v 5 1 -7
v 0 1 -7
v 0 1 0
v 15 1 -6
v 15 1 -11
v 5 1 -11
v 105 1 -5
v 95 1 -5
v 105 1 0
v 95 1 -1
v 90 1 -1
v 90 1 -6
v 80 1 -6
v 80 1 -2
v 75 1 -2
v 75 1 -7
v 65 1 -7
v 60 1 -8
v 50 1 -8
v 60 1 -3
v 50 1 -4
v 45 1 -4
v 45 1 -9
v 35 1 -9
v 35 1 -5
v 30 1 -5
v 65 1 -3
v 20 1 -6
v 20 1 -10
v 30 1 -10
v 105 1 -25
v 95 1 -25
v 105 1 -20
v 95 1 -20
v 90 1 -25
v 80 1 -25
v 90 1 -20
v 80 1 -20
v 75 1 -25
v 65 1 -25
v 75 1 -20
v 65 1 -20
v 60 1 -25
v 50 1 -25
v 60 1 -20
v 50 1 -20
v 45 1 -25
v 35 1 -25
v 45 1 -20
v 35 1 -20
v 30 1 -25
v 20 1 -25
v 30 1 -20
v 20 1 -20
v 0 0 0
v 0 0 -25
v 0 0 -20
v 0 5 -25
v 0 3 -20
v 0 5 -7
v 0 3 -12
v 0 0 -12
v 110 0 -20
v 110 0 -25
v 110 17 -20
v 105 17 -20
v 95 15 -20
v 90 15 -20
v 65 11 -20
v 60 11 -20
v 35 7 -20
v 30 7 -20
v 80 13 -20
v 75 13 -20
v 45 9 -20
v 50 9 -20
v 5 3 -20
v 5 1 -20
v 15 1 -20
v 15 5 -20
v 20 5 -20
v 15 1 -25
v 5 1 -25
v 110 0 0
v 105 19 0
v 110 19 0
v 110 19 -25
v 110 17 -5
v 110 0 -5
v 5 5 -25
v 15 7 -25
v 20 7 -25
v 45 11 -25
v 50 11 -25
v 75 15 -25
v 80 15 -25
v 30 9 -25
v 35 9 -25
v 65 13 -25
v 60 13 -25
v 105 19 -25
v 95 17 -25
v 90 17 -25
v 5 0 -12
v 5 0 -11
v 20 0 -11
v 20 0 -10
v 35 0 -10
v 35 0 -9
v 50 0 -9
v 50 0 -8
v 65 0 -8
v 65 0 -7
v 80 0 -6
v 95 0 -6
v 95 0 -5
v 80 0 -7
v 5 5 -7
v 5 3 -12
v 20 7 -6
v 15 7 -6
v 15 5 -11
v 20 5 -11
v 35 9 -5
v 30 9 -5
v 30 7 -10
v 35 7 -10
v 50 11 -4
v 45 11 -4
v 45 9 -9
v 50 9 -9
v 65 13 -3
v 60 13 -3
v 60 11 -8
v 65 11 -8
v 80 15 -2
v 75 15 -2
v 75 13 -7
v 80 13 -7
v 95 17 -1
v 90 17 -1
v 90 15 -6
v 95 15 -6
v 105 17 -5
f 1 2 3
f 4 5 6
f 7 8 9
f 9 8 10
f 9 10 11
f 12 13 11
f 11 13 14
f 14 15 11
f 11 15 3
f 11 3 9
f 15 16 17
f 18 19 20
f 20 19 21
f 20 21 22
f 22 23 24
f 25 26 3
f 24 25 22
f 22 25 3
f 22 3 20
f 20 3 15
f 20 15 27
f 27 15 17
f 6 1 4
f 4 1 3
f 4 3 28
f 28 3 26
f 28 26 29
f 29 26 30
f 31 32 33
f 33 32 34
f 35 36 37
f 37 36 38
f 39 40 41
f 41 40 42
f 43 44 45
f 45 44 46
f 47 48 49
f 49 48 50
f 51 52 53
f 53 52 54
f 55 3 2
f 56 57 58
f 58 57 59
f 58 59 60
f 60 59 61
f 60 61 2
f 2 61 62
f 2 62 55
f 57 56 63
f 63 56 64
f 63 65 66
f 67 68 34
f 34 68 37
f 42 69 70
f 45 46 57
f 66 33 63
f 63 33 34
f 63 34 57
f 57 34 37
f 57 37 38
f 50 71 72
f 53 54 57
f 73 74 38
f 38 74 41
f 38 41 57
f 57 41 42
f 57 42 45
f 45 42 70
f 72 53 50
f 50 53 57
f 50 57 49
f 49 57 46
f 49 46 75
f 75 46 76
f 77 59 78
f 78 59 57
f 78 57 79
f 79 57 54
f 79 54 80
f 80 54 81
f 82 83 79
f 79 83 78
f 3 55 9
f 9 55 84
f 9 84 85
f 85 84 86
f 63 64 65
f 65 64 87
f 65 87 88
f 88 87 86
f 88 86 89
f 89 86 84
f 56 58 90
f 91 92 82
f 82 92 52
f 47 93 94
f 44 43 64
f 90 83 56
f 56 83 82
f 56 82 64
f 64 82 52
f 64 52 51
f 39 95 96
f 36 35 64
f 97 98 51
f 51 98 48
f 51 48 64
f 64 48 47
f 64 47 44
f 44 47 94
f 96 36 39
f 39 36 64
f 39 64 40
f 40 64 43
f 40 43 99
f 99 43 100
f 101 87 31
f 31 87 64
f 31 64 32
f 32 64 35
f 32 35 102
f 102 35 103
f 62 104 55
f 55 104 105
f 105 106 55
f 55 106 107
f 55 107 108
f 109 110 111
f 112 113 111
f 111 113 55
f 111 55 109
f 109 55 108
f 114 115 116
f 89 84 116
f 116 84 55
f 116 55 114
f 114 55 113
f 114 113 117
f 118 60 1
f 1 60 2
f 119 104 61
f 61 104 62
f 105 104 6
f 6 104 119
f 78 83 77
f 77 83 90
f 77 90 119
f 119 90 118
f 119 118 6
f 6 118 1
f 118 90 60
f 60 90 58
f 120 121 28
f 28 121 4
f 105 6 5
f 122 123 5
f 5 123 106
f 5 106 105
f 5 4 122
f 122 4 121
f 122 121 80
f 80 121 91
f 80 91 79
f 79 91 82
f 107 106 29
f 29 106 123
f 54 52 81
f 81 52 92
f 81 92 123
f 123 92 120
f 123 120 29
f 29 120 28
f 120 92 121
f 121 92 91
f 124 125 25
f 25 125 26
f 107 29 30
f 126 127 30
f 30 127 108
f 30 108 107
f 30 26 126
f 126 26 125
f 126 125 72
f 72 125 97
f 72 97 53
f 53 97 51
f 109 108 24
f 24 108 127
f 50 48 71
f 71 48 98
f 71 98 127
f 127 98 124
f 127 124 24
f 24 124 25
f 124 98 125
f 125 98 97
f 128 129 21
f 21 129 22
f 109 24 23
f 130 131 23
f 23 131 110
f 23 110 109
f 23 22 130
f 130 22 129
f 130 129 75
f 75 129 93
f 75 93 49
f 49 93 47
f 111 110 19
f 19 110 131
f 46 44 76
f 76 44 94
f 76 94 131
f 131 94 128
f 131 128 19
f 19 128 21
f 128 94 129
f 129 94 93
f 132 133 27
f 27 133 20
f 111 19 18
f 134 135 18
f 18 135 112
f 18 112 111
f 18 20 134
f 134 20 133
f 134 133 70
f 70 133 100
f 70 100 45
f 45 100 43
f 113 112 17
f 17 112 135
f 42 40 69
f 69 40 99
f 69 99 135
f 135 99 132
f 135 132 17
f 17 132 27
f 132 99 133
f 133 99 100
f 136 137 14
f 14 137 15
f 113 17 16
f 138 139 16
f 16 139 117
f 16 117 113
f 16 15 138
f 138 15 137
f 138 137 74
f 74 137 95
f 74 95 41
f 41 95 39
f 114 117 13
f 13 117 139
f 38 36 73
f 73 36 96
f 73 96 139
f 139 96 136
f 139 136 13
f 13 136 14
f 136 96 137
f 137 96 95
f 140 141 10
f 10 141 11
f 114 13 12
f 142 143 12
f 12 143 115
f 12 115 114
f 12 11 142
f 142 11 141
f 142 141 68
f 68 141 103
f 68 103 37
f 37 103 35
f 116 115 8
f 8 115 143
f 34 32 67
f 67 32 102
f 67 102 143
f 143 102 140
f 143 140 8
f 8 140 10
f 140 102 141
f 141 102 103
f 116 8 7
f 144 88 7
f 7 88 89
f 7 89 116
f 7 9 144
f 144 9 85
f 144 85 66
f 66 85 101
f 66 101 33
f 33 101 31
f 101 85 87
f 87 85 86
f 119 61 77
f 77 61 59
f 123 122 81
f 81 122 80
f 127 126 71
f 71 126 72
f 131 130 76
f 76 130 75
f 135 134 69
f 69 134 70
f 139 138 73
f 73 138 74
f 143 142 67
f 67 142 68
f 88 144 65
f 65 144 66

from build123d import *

# Parameters (mm, degrees)
SKETCH1_W          = 110
SKETCH1_H          = 25
BASE_DEPTH         = 1
SKETCH10_W         = 5
SKETCH10_H         = 5
LEG1_DEPTH         = 4
LEG2_W             = 5
LEG2_H             = 5
LEG2E_DEPTH        = 6
LEG3_W             = 5
LEG3_H             = 5
LEG3E_DEPTH        = 8
LEG4_W             = 5
LEG4_H             = 5
LEG4E_DEPTH        = 10
LEG5_W             = 5
LEG5_H             = 5
LEG5E_DEPTH        = 12
LEG6_W             = 5
LEG6_H             = 5
LEG6E_DEPTH        = 14
LEG7_W             = 5
LEG7_H             = 5
LEG7E_DEPTH        = 16
LEG8_W             = 5
LEG8_H             = 5
LEG8E_DEPTH        = 18
SKETCH29_W         = 5
SKETCH29_H         = 2
BRIDGE1_DEPTH      = 8
SKETCH30_W         = 5
SKETCH30_H         = 2
BRIDGE2_DEPTH      = 9
SKETCH31_W         = 5
SKETCH31_H         = 2
BRIDGE3_DEPTH      = 10
SKETCH32_W         = 5
SKETCH32_H         = 2
BRIDGE4_DEPTH      = 11
SKETCH33_W         = 5
SKETCH33_H         = 2
BRIDGE5_DEPTH      = 12
SKETCH34_W         = 5
SKETCH34_H         = 2
BRIDGE6_DEPTH      = 13
SKETCH35_W         = 5
SKETCH35_H         = 2
BRIDGE7_DEPTH      = 14
SKETCH36_W         = 5
SKETCH36_H         = 2
BRIDGE8_DEPTH      = 15
CUT_EXTRUDE4_DEPTH = 115.232219623


with BuildPart() as part:
    # Sketch1 → Base (new body)
    with BuildSketch(Plane(origin=(0, 0, 0), x_dir=(1, 0, 0), z_dir=(0, 1, 0))):
        with Locations((55, 12.5)):
            Rectangle(SKETCH1_W, SKETCH1_H)
    extrude(amount=BASE_DEPTH)

    # Sketch10 → leg1 (add)
    with BuildSketch(Plane(origin=(0, 1, 0), x_dir=(1, 0, 0), z_dir=(0, 1, 0))):
        with Locations((2.5, 22.5)):
            Rectangle(SKETCH10_W, SKETCH10_H)
        with Locations((2.5, 9.5)):
            Rectangle(SKETCH10_W, SKETCH10_H)
    extrude(amount=LEG1_DEPTH)

    # leg2 → leg2e (add)
    with BuildSketch(Plane(origin=(0, 1, 0), x_dir=(1, 0, 0), z_dir=(0, 1, 0))):
        with Locations((17.5, 22.5)):
            Rectangle(LEG2_W, LEG2_H)
        with Locations((17.5, 8.5)):
            Rectangle(LEG2_W, LEG2_H)
    extrude(amount=LEG2E_DEPTH)

    # leg3 → leg3e (add)
    with BuildSketch(Plane(origin=(0, 1, 0), x_dir=(1, 0, 0), z_dir=(0, 1, 0))):
        with Locations((32.5, 22.5)):
            Rectangle(LEG3_W, LEG3_H)
        with Locations((32.5, 7.5)):
            Rectangle(LEG3_W, LEG3_H)
    extrude(amount=LEG3E_DEPTH)

    # leg4 → leg4e (add)
    with BuildSketch(Plane(origin=(0, 1, 0), x_dir=(1, 0, 0), z_dir=(0, 1, 0))):
        with Locations((47.5, 22.5)):
            Rectangle(LEG4_W, LEG4_H)
        with Locations((47.5, 6.5)):
            Rectangle(LEG4_W, LEG4_H)
    extrude(amount=LEG4E_DEPTH)

    # leg5 → leg5e (add)
    with BuildSketch(Plane(origin=(0, 1, 0), x_dir=(1, 0, 0), z_dir=(0, 1, 0))):
        with Locations((62.5, 22.5)):
            Rectangle(LEG5_W, LEG5_H)
        with Locations((62.5, 5.5)):
            Rectangle(LEG5_W, LEG5_H)
    extrude(amount=LEG5E_DEPTH)

    # leg6 → leg6e (add)
    with BuildSketch(Plane(origin=(0, 1, 0), x_dir=(1, 0, 0), z_dir=(0, 1, 0))):
        with Locations((77.5, 22.5)):
            Rectangle(LEG6_W, LEG6_H)
        with Locations((77.5, 4.5)):
            Rectangle(LEG6_W, LEG6_H)
    extrude(amount=LEG6E_DEPTH)

    # leg7 → leg7e (add)
    with BuildSketch(Plane(origin=(0, 1, 0), x_dir=(1, 0, 0), z_dir=(0, 1, 0))):
        with Locations((92.5, 22.5)):
            Rectangle(LEG7_W, LEG7_H)
        with Locations((92.5, 3.5)):
            Rectangle(LEG7_W, LEG7_H)
    extrude(amount=LEG7E_DEPTH)

    # leg8 → leg8e (add)
    with BuildSketch(Plane(origin=(0, 1, 0), x_dir=(1, 0, 0), z_dir=(0, 1, 0))):
        with Locations((107.5, 22.5)):
            Rectangle(LEG8_W, LEG8_H)
        with Locations((107.5, 2.5)):
            Rectangle(LEG8_W, LEG8_H)
    extrude(amount=LEG8E_DEPTH)

    # Sketch29 → bridge1 (add)
    with BuildSketch(Plane.XY.offset(-20)):
        with Locations((2.5, 4)):
            Rectangle(SKETCH29_W, SKETCH29_H)
    extrude(amount=BRIDGE1_DEPTH)

    # Sketch30 → bridge2 (add)
    with BuildSketch(Plane.XY.offset(-20)):
        with Locations((17.5, 6)):
            Rectangle(SKETCH30_W, SKETCH30_H)
    extrude(amount=BRIDGE2_DEPTH)

    # Sketch31 → bridge3 (add)
    with BuildSketch(Plane.XY.offset(-20)):
        with Locations((32.5, 8)):
            Rectangle(SKETCH31_W, SKETCH31_H)
    extrude(amount=BRIDGE3_DEPTH)

    # Sketch32 → bridge4 (add)
    with BuildSketch(Plane.XY.offset(-20)):
        with Locations((47.5, 10)):
            Rectangle(SKETCH32_W, SKETCH32_H)
    extrude(amount=BRIDGE4_DEPTH)

    # Sketch33 → bridge5 (add)
    with BuildSketch(Plane.XY.offset(-20)):
        with Locations((62.5, 12)):
            Rectangle(SKETCH33_W, SKETCH33_H)
    extrude(amount=BRIDGE5_DEPTH)

    # Sketch34 → bridge6 (add)
    with BuildSketch(Plane.XY.offset(-20)):
        with Locations((77.5, 14)):
            Rectangle(SKETCH34_W, SKETCH34_H)
    extrude(amount=BRIDGE6_DEPTH)

    # Sketch35 → bridge7 (add)
    with BuildSketch(Plane.XY.offset(-20)):
        with Locations((92.5, 16)):
            Rectangle(SKETCH35_W, SKETCH35_H)
    extrude(amount=BRIDGE7_DEPTH)

    # Sketch36 → bridge8 (add)
    with BuildSketch(Plane.XY.offset(-20)):
        with Locations((107.5, 18)):
            Rectangle(SKETCH36_W, SKETCH36_H)
    extrude(amount=BRIDGE8_DEPTH)

    # Sketch37 → Cut-Extrude4 (cut, through all)
    with BuildSketch(Plane(origin=(0, 1, 0), x_dir=(1, 0, 0), z_dir=(0, 1, 0))):
        Polygon((0, 20), (110, 20), (110, 5), (95, 5), (95, 6), (80, 6), (80, 7), (65, 7), (65, 8), (50, 8), (50, 9), (35, 9), (35, 10), (20, 10), (20, 11), (5, 11), (5, 12), (0, 12), align=None)
    extrude(amount=-CUT_EXTRUDE4_DEPTH, mode=Mode.SUBTRACT)


solid = part.part
